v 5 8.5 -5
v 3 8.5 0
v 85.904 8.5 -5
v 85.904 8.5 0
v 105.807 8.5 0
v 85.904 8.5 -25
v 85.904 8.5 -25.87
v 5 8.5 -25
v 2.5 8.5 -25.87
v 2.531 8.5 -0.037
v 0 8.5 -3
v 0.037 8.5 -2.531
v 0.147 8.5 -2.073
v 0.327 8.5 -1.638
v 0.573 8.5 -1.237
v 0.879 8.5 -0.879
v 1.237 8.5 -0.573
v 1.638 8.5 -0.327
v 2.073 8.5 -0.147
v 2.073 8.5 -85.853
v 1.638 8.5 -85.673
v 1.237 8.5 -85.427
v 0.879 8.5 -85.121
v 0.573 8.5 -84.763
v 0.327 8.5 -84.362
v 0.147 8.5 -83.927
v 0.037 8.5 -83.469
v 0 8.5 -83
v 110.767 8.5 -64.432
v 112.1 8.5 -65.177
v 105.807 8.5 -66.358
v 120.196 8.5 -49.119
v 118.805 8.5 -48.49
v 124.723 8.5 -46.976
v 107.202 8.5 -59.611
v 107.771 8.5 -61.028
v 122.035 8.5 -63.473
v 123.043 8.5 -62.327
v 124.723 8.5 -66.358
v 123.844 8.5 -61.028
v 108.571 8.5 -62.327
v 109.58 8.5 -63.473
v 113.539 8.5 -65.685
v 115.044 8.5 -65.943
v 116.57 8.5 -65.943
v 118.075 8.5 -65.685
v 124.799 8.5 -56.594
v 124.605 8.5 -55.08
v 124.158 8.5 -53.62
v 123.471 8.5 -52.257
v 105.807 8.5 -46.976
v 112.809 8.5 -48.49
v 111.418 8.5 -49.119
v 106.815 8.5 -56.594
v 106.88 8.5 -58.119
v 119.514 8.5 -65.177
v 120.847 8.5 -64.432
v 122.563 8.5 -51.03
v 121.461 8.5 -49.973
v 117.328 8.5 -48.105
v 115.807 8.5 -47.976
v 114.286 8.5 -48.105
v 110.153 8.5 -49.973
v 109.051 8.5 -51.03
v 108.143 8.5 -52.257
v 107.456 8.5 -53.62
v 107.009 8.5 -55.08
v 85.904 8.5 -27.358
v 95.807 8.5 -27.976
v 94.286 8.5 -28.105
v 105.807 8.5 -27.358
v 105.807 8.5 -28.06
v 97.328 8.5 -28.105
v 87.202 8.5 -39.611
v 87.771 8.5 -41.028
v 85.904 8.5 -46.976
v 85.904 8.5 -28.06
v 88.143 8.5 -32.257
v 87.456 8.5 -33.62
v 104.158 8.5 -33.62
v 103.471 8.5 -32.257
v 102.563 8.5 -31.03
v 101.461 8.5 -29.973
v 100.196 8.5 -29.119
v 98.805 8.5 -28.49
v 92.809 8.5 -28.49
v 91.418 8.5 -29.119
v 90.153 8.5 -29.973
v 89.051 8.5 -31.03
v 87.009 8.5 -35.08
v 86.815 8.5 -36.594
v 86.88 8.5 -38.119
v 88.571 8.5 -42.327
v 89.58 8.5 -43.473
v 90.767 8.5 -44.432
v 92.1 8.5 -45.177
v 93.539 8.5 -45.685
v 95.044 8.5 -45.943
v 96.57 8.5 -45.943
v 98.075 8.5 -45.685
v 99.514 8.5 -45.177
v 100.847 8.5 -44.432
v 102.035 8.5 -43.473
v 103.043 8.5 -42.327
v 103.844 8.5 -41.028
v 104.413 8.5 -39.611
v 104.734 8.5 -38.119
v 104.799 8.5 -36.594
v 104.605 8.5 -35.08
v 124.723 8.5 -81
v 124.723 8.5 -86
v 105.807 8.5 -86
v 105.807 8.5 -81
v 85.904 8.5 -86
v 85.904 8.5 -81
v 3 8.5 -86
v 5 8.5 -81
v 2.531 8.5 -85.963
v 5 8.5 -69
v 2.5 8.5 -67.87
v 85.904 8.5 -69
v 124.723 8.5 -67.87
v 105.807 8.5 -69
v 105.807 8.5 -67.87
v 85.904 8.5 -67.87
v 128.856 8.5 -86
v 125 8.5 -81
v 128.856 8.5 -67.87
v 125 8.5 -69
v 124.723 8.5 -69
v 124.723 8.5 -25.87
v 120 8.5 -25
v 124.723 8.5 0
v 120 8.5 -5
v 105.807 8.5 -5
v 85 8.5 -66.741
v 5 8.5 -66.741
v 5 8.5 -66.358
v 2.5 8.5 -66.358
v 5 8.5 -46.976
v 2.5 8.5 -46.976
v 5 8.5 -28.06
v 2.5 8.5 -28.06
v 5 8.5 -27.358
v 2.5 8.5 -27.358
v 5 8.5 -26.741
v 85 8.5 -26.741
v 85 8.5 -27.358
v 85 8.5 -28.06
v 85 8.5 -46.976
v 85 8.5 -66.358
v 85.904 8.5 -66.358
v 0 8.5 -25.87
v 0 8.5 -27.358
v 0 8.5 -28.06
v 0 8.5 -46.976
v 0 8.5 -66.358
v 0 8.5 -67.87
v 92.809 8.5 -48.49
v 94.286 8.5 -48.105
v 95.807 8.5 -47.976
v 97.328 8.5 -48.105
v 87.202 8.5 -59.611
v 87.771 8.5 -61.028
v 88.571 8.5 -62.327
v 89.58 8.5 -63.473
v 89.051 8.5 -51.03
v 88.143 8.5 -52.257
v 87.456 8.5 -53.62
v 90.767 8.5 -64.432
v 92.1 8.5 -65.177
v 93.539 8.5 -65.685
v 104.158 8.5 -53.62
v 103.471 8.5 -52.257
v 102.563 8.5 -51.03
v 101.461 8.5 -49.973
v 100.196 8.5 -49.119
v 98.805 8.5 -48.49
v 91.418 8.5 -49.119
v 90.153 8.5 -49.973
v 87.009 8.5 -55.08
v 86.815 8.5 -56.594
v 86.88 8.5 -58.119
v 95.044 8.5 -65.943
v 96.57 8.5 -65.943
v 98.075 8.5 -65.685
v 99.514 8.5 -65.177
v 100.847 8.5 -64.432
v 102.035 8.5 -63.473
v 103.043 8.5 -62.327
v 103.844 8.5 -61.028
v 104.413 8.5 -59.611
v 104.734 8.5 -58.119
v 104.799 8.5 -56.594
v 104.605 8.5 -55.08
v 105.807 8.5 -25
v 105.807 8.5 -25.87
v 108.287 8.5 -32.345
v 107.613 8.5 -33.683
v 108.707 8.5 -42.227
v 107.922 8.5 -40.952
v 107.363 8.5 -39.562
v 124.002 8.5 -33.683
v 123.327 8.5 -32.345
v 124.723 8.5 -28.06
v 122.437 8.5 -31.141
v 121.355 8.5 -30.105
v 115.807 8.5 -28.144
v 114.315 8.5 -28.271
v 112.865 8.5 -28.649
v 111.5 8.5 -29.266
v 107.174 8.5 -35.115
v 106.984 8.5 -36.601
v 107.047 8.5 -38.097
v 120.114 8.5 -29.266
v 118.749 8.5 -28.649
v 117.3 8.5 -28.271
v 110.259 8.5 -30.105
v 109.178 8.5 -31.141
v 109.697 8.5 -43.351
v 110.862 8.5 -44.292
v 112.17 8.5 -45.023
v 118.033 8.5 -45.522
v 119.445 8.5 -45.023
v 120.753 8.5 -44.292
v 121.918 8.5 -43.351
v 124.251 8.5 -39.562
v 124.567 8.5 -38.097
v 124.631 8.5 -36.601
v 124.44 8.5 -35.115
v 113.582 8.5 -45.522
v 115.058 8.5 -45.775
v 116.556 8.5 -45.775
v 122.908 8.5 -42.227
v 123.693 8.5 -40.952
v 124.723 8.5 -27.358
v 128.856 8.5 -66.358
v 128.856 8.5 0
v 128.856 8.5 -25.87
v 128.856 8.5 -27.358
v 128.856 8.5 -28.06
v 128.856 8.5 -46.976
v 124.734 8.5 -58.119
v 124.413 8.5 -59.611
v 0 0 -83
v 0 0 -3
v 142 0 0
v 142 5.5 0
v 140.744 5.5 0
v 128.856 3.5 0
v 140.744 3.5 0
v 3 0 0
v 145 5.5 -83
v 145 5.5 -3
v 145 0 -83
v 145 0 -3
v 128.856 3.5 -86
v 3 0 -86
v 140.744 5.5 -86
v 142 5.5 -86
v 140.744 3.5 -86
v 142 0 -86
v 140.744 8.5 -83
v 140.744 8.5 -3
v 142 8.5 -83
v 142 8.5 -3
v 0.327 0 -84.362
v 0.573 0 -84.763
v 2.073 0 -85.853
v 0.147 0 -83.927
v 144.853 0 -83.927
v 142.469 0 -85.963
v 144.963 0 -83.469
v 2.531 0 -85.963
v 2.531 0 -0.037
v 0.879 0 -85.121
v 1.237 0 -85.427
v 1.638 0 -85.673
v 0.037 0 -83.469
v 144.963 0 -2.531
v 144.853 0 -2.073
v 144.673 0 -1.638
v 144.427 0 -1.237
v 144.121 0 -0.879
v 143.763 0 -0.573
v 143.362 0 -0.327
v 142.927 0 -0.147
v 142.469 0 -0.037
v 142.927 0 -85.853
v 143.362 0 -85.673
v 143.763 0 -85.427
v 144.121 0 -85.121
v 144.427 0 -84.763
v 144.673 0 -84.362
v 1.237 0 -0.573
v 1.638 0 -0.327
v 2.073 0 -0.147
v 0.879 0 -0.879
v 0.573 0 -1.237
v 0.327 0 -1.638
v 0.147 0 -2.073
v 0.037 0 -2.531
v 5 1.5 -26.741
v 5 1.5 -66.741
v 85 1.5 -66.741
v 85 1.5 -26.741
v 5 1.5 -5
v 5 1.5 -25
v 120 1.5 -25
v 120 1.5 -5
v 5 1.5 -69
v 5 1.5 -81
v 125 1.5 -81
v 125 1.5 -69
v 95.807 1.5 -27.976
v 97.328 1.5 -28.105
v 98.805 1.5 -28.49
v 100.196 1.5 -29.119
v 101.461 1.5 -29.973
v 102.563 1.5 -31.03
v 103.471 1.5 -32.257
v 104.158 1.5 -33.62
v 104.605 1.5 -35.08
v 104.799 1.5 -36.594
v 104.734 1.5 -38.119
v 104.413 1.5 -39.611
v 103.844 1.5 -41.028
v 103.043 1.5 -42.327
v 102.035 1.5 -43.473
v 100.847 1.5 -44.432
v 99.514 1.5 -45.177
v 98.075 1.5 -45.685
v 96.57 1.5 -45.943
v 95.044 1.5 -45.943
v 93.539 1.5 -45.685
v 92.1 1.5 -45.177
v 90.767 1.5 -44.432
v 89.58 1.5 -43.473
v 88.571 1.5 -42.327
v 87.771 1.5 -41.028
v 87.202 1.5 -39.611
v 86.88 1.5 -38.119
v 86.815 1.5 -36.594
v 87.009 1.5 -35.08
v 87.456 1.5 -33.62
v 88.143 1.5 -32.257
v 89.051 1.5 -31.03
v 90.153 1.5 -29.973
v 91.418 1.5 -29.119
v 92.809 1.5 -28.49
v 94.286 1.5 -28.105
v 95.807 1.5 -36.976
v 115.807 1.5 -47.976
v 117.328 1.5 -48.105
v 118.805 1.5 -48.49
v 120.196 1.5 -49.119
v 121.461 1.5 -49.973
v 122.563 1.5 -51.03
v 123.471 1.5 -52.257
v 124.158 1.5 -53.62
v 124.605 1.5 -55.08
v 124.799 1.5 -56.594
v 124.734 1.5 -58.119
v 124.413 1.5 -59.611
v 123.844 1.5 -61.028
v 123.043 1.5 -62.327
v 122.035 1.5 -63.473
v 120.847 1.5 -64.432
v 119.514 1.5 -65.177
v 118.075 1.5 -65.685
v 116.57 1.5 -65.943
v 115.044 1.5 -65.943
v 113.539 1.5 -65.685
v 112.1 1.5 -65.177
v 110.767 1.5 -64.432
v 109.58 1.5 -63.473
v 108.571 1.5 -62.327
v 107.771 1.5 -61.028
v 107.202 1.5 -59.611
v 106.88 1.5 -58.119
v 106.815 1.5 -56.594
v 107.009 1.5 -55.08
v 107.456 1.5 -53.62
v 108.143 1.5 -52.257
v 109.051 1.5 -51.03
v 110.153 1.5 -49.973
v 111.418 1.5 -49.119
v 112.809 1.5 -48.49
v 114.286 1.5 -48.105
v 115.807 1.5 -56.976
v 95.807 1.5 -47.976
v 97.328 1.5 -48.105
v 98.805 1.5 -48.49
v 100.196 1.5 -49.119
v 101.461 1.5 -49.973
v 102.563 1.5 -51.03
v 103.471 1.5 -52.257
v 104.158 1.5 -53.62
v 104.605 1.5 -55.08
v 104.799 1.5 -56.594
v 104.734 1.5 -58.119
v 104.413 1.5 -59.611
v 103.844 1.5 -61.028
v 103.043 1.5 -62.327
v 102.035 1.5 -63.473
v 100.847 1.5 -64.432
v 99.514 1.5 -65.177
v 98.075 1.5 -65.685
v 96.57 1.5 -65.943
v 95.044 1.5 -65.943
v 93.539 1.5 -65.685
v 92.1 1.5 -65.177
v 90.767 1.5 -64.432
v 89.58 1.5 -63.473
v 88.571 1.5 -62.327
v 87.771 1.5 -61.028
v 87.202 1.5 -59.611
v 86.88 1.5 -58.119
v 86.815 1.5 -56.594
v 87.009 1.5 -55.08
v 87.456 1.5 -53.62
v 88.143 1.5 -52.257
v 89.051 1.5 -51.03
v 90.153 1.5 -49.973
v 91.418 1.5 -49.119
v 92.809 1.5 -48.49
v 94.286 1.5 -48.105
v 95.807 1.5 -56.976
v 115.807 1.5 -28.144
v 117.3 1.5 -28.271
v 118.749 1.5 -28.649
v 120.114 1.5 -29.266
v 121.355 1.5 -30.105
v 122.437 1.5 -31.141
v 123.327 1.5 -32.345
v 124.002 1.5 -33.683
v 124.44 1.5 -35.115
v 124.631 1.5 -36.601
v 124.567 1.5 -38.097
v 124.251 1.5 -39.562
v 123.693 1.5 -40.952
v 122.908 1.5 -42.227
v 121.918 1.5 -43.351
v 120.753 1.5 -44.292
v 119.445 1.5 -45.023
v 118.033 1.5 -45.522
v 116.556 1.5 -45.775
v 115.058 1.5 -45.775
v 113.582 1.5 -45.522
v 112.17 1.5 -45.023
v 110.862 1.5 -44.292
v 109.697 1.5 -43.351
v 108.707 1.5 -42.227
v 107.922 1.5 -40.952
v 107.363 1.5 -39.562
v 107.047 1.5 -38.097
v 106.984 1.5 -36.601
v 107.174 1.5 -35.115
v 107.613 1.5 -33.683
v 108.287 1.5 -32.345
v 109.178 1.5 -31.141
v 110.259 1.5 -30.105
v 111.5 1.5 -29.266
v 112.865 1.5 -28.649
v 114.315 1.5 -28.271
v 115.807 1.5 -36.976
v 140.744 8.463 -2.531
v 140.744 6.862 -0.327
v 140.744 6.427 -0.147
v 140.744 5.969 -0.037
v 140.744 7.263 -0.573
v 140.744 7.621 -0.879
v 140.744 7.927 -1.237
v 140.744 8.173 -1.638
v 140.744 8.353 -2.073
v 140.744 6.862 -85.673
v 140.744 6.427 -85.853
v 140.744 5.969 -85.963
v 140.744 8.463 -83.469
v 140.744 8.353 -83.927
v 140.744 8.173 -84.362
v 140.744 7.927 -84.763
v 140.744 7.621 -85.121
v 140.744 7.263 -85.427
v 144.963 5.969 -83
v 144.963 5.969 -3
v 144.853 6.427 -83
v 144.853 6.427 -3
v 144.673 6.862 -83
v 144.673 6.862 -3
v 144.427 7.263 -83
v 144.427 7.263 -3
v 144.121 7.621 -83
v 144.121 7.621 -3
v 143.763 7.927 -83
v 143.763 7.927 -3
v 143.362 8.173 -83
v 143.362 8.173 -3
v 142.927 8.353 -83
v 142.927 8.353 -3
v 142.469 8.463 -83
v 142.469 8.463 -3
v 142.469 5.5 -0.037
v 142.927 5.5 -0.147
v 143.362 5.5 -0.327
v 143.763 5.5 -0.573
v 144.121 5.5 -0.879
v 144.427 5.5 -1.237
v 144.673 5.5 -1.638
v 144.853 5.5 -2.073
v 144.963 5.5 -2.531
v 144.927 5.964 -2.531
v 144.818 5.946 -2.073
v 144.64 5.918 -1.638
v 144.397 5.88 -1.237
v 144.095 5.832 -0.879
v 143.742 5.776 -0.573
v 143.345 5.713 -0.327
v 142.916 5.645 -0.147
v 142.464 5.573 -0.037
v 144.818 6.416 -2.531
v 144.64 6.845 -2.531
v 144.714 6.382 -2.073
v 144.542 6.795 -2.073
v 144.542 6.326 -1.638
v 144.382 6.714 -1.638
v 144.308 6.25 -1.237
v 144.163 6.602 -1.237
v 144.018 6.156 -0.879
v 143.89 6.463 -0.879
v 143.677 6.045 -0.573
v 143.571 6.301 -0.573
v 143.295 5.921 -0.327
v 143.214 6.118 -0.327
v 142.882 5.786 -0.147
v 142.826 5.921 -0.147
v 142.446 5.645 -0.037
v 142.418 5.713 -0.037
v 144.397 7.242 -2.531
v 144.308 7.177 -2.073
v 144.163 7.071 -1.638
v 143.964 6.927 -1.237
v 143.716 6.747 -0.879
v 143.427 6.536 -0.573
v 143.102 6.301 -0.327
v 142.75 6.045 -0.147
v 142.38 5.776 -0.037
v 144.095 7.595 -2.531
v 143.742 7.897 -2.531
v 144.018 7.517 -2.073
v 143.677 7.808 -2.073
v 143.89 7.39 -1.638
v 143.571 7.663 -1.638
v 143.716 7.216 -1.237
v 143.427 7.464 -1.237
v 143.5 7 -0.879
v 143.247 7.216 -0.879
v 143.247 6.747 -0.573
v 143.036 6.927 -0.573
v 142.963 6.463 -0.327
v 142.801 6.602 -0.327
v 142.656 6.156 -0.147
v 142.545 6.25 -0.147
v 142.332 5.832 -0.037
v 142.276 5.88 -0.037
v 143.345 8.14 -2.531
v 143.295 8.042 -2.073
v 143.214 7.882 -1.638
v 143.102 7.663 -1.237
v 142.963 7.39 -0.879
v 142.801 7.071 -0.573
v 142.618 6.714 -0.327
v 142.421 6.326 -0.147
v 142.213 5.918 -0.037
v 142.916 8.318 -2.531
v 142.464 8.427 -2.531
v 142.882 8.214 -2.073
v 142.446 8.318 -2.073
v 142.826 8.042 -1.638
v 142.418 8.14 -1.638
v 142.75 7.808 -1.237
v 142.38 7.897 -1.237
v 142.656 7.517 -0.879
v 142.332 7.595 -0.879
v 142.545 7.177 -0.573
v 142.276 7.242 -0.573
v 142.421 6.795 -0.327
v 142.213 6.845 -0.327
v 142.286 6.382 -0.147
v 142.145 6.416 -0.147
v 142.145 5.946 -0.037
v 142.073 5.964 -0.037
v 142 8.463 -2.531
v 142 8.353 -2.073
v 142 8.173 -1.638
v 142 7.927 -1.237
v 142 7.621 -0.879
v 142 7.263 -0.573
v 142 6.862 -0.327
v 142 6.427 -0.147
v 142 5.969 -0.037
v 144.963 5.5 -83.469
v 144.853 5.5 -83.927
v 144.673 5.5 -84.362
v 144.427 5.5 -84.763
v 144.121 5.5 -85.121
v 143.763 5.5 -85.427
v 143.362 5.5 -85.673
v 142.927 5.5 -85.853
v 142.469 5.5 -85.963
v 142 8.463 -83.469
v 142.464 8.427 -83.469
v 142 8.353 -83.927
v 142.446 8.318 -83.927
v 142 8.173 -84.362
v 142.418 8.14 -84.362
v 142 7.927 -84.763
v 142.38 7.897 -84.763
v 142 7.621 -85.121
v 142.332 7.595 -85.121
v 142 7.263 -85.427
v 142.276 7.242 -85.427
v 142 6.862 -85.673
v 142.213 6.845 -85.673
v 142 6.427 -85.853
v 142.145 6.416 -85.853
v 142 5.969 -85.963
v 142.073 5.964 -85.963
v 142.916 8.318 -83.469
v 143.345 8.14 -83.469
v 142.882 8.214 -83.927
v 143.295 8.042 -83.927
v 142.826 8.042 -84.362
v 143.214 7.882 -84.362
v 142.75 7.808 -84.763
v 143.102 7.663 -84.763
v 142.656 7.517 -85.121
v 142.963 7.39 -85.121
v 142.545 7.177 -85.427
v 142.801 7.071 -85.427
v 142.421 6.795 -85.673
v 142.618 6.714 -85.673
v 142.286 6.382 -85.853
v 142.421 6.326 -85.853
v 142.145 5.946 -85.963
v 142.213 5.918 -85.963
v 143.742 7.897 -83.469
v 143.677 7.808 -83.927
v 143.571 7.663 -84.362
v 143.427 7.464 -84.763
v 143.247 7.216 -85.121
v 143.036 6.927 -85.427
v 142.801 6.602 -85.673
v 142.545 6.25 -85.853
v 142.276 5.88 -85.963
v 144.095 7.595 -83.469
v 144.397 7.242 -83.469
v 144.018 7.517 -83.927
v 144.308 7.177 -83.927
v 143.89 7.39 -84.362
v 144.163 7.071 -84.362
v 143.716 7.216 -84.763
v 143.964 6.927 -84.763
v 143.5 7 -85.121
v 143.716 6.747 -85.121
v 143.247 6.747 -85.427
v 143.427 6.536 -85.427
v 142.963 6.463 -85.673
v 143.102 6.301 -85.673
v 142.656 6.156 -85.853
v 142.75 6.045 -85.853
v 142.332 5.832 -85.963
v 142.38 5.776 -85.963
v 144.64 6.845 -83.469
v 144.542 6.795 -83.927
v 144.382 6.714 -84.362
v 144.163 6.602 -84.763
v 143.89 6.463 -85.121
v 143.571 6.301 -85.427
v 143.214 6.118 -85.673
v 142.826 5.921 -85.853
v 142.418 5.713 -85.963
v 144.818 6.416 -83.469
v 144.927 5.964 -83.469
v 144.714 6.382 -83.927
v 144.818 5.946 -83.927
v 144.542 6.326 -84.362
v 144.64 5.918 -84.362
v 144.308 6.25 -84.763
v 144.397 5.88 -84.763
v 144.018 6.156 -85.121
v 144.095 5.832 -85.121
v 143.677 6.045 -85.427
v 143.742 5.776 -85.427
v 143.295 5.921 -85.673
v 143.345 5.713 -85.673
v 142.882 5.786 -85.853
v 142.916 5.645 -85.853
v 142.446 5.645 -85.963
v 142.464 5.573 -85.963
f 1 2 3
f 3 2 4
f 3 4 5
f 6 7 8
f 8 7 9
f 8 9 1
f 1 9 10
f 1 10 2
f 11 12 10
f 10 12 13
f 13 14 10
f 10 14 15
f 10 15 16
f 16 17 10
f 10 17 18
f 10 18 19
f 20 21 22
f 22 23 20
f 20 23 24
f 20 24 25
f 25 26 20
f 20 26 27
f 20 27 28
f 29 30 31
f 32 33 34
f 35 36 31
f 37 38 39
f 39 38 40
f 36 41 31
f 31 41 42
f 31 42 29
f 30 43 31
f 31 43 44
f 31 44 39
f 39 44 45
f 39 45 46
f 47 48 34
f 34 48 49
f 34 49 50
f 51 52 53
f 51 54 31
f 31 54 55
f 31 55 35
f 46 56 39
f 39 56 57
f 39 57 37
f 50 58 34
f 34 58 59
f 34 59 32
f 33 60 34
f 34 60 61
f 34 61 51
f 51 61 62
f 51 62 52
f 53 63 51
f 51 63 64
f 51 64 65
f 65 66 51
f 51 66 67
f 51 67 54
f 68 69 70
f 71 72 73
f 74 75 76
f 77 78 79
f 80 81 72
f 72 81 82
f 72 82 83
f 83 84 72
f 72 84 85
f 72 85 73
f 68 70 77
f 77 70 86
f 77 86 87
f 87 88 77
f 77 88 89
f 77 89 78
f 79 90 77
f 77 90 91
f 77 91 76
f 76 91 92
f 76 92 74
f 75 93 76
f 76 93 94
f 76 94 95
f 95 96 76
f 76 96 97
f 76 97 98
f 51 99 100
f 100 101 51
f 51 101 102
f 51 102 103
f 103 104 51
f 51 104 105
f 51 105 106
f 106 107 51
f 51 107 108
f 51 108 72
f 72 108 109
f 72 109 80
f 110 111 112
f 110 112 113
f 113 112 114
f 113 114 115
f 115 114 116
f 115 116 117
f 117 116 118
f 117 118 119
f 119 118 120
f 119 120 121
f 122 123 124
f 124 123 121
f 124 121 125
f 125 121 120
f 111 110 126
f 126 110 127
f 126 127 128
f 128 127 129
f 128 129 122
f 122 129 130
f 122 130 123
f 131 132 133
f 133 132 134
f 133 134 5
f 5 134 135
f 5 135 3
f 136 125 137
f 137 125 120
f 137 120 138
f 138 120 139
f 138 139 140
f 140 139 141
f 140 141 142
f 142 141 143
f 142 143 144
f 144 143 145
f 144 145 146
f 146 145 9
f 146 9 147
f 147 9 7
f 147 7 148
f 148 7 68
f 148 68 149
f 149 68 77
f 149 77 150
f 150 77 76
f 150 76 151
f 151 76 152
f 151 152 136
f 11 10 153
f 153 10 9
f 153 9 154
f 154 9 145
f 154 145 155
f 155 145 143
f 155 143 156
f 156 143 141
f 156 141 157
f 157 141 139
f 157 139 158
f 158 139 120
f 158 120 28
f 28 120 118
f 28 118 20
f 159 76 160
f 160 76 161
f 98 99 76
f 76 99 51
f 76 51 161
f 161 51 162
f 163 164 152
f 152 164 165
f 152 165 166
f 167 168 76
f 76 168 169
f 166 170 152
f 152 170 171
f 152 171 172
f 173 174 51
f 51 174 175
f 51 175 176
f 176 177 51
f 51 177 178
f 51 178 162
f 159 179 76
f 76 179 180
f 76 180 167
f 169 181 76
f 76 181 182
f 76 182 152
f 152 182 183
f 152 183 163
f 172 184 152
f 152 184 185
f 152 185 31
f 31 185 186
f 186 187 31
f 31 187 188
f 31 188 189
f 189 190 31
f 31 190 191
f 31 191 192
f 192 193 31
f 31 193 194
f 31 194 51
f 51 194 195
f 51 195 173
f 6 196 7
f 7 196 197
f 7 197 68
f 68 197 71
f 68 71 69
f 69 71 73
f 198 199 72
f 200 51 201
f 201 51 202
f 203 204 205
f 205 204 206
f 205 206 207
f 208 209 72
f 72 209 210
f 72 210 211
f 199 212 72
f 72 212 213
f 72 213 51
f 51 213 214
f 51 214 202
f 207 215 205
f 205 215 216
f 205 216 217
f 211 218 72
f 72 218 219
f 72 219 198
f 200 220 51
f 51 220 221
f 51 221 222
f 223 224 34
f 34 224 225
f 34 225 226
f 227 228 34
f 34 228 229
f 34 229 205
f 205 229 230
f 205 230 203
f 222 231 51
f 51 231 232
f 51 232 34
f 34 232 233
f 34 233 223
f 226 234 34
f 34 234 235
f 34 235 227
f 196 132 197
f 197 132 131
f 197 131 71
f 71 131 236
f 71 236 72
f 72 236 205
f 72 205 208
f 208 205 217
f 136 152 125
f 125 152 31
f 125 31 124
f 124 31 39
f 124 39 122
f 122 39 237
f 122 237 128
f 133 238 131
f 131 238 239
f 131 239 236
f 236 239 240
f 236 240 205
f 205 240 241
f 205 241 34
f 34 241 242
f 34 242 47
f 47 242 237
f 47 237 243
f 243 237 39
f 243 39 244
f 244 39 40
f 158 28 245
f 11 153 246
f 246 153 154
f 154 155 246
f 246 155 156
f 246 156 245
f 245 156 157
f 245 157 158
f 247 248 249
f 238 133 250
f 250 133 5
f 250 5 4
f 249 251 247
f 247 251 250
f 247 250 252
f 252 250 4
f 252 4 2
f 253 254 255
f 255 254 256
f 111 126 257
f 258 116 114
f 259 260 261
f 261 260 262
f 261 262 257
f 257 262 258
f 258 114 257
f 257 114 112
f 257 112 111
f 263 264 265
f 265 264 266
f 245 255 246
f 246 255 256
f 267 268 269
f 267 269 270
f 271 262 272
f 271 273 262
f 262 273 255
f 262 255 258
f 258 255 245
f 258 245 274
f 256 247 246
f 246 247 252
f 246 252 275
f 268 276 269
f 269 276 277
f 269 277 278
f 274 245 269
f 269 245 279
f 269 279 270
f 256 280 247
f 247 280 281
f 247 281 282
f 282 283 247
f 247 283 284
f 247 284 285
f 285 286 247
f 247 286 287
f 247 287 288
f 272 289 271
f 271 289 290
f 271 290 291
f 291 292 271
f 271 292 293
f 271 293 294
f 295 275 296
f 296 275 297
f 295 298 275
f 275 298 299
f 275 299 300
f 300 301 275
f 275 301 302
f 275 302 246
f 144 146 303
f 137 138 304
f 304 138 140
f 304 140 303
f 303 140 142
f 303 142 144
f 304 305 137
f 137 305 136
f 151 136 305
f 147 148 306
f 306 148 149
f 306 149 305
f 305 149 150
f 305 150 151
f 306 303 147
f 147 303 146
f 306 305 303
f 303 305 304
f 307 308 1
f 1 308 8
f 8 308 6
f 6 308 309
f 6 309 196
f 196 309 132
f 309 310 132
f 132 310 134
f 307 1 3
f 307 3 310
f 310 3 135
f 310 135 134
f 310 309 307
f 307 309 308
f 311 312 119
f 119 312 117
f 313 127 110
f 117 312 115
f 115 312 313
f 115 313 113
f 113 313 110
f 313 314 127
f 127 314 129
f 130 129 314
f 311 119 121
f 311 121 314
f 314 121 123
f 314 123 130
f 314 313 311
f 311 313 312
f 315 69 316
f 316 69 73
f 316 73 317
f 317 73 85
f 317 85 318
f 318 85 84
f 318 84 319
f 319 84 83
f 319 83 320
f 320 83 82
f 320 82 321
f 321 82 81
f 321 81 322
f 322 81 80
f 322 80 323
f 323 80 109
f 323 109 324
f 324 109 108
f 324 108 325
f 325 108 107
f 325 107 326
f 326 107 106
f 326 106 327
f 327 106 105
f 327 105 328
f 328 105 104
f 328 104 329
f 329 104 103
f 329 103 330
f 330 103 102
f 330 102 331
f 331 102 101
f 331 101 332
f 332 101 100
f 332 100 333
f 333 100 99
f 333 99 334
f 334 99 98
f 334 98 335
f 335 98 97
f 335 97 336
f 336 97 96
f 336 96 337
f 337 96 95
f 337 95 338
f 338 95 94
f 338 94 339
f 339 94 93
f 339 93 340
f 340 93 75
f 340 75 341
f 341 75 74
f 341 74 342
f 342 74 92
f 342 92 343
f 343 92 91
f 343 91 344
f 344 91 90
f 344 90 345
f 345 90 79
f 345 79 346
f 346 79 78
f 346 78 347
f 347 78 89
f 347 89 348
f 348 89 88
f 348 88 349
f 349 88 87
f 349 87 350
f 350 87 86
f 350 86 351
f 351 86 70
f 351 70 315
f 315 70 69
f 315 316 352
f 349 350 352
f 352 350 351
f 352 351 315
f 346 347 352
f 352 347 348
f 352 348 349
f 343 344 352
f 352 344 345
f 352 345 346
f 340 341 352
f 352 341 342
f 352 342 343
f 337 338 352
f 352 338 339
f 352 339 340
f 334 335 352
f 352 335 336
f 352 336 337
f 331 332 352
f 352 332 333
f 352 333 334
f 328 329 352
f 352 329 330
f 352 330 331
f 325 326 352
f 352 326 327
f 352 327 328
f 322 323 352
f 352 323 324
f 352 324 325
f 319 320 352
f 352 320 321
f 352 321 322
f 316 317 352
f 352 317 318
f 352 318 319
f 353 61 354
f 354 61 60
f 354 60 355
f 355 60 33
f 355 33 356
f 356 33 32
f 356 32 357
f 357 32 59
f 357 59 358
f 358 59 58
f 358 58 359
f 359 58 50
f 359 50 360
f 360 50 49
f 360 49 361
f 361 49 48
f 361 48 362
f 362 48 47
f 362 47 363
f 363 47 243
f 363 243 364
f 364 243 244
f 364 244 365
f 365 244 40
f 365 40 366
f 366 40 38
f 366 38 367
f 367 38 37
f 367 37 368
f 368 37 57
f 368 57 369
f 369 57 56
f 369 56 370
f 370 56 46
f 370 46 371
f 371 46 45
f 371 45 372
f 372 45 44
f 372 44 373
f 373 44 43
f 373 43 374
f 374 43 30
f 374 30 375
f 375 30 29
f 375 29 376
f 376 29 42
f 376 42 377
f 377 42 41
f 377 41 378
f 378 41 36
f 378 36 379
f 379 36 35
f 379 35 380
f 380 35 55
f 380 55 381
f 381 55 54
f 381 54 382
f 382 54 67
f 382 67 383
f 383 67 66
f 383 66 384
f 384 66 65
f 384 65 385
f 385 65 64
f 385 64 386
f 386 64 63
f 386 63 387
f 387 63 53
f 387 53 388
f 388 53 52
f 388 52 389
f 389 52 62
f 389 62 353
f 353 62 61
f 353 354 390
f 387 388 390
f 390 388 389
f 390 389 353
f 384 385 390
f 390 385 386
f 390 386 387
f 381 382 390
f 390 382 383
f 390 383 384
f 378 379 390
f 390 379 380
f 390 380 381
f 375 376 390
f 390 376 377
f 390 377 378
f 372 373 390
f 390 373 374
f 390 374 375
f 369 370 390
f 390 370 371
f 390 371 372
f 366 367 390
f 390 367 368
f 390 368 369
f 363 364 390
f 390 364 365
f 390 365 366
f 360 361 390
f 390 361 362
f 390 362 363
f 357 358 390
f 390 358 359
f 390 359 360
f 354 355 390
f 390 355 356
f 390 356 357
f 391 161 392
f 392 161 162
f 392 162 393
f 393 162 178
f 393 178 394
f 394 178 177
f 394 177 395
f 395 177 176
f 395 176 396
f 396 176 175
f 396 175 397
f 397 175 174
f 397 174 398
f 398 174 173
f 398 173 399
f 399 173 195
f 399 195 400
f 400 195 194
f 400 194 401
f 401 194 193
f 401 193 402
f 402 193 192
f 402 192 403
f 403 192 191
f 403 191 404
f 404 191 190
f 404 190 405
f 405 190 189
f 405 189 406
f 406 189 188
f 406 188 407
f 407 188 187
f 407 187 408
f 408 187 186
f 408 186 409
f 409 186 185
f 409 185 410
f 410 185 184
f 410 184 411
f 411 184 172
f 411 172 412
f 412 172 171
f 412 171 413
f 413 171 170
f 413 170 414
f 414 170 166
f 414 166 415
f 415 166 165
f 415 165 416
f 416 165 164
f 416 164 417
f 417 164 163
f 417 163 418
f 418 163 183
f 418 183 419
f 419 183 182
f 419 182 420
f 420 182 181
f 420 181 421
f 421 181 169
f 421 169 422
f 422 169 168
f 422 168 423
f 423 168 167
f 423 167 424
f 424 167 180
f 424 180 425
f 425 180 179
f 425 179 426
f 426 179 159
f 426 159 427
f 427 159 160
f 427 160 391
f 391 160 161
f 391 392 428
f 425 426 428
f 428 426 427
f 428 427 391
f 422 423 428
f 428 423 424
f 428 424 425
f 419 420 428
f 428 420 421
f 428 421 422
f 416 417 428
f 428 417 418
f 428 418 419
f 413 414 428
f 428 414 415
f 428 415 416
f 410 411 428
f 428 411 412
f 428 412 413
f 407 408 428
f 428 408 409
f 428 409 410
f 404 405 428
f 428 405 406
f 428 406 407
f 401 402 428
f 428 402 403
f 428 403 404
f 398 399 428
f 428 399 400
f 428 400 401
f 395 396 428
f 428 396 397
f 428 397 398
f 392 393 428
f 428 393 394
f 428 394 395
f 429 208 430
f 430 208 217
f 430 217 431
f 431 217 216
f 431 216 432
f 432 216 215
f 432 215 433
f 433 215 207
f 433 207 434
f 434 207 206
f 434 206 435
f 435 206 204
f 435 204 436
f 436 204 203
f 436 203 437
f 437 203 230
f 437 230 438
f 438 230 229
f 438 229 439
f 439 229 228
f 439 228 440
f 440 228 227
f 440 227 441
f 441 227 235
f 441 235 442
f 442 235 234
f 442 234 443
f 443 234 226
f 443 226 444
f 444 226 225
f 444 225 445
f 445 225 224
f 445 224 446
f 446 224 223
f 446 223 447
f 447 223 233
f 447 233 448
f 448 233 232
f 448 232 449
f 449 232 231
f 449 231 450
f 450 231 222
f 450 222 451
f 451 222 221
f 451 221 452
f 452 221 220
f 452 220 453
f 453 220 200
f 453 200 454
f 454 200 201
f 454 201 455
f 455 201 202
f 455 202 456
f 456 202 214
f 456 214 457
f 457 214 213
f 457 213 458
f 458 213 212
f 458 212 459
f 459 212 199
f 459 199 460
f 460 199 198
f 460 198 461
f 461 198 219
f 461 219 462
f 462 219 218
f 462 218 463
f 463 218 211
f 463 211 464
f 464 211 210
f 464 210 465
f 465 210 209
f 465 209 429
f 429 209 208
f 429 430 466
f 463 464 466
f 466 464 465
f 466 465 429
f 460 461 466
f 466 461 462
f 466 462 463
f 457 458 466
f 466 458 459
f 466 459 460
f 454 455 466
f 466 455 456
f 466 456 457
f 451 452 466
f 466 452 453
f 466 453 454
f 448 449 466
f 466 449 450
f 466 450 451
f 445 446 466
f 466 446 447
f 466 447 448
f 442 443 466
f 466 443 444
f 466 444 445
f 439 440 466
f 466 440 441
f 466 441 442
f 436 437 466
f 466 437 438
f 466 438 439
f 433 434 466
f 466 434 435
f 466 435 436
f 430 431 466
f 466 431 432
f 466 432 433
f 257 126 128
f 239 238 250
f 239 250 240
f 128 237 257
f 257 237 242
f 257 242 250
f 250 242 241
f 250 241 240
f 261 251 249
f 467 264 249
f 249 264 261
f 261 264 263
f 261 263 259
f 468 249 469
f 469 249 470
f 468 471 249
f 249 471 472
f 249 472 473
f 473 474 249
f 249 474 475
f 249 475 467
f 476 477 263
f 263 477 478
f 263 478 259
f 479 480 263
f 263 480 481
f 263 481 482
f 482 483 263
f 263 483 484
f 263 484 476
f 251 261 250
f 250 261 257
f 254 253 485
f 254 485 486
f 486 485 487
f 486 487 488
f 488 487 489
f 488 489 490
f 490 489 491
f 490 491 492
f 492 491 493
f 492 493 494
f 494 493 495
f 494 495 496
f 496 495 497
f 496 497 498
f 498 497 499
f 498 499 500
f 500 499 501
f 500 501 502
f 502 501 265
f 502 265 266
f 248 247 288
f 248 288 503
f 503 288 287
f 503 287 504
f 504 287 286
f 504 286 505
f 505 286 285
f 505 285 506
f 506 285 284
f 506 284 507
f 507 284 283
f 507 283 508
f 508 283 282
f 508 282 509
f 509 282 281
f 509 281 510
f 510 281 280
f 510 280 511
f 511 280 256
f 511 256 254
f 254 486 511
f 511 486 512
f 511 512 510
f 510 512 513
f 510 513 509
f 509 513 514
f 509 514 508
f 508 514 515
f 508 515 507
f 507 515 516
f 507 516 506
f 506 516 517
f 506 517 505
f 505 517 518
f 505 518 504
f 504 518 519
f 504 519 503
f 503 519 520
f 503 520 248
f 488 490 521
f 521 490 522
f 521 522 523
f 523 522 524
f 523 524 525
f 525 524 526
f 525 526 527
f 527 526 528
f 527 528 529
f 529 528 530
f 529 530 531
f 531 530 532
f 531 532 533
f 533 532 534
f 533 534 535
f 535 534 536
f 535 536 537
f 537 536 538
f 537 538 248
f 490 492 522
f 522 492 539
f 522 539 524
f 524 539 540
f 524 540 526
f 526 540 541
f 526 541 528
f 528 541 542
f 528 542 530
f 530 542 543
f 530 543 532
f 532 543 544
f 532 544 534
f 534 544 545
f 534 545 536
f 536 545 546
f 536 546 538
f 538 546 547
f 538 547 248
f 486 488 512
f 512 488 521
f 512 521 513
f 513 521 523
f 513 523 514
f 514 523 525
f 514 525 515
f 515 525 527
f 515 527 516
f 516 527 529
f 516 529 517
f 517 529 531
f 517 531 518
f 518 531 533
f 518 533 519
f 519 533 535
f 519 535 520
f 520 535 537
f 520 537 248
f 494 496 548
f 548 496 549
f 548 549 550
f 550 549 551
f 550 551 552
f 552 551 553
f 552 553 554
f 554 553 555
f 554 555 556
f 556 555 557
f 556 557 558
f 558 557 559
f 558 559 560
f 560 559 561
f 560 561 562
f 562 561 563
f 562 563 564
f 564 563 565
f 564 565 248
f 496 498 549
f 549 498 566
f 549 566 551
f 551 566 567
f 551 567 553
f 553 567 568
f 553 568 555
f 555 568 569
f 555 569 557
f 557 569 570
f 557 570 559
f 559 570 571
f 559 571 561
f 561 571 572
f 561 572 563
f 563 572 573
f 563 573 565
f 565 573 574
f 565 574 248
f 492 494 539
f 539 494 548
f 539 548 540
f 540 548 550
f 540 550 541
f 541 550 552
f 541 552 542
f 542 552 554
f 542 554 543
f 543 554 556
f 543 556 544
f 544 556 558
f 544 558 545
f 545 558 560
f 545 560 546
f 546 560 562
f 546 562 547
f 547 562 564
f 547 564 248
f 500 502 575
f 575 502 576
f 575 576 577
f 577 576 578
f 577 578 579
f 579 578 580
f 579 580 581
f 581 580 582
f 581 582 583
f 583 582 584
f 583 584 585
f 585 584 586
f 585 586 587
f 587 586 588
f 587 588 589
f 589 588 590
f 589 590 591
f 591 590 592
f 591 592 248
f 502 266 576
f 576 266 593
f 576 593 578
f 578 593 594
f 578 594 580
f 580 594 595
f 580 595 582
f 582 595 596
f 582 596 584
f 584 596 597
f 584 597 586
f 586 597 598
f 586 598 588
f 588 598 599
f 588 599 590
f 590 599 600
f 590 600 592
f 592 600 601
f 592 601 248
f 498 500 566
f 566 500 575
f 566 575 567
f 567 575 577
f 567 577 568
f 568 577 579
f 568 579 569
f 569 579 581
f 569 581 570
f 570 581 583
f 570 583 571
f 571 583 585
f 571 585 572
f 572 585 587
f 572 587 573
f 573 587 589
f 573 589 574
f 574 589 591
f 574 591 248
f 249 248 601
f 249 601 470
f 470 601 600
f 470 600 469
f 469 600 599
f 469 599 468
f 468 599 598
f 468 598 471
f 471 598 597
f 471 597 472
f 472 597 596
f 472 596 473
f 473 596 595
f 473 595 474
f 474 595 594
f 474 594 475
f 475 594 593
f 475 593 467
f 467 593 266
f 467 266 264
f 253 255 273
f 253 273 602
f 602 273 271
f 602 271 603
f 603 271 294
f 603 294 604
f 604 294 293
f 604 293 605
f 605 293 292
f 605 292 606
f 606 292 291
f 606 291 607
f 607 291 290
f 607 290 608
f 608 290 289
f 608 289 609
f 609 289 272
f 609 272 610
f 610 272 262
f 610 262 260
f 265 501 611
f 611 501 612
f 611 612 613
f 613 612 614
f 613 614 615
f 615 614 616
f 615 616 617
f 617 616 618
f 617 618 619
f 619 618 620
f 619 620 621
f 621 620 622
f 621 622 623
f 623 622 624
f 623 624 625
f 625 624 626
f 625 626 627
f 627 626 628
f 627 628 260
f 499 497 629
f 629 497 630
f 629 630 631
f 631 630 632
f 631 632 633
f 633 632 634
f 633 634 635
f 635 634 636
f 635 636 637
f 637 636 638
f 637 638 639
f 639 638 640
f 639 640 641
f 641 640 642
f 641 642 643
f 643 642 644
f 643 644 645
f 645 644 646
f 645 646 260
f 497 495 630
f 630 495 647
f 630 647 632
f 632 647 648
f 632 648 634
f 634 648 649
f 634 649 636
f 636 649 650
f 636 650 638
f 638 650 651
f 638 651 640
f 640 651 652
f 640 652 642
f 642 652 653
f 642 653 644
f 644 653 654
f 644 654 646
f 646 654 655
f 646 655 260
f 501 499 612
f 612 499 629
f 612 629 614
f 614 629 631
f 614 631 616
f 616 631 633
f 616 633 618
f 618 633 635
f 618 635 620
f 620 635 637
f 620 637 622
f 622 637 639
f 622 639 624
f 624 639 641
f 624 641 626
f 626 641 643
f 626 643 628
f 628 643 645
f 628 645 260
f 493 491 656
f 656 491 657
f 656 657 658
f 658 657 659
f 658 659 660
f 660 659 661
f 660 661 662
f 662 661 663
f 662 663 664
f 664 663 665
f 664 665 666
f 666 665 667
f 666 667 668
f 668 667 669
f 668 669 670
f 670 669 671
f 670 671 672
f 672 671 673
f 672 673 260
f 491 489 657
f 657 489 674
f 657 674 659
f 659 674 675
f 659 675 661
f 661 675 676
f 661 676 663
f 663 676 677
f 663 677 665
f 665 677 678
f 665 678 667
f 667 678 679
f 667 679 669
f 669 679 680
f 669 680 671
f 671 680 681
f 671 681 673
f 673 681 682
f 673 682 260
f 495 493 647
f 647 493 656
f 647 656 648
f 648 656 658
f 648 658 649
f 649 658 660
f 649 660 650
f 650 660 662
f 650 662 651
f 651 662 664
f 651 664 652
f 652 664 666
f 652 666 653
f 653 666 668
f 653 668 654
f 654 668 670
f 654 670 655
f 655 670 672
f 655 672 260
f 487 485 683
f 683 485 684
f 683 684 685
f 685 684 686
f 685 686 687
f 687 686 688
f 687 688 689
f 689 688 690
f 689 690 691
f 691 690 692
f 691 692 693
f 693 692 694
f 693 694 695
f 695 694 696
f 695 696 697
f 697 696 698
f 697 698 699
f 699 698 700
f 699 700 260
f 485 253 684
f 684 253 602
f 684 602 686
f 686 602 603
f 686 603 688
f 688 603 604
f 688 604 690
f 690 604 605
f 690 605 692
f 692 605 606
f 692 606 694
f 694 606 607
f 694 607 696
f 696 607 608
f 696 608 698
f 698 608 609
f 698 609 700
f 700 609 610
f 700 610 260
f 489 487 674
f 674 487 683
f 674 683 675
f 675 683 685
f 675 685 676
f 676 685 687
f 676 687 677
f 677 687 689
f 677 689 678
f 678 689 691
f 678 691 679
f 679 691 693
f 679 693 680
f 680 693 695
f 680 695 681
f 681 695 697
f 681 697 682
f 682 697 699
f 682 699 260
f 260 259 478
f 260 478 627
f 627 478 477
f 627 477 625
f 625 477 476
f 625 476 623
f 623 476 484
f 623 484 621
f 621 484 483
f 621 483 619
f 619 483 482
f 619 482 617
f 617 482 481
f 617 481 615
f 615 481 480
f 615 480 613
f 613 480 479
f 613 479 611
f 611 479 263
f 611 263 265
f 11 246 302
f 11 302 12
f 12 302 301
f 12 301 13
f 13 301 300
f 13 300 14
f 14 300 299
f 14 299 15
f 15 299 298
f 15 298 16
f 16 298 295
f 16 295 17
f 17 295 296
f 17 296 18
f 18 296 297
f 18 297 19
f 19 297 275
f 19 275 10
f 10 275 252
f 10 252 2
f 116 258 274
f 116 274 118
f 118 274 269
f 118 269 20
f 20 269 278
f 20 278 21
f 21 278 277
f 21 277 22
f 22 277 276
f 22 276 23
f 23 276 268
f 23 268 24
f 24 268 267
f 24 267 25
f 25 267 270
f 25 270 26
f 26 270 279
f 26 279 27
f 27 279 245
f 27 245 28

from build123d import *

# Parameters (mm, degrees)
SKETCH_1_W            = 145
SKETCH_1_H            = 86
EXTRUDE_305_DEPTH     = 8.5
SKETCH_4_W            = 80
SKETCH_4_H            = 40
CUT_EXTRUDE_1_DEPTH   = 7
SKETCH_6_W            = 115
SKETCH_6_H            = 20
CUT_EXTRUDE_793_DEPTH = 7
SKETCH_8_W            = 120
SKETCH_8_H            = 12
CUT_EXTRUDE_5_DEPTH   = 7
SKETCH_14_R           = 9
SKETCH_14_R_2         = 8.831298305
CUT_EXTRUDE_11_DEPTH  = 7
SKETCH_15_W           = 11.88767394
SKETCH_15_H           = 86
CUT_EXTRUDE_12_DEPTH  = 5
FILLET_1_R            = 3
FILLET_2_R            = 3
FILLET_3_R            = 3
FILLET_4_R            = 3
FILLET_5_R            = 3


with BuildPart() as part:
    # Эскиз1 → Extrude 305 (new body)
    with BuildSketch(Plane(origin=(0, 0, 0), x_dir=(1, 0, 0), z_dir=(0, 1, 0))):
        with Locations((72.5, 43)):
            Rectangle(SKETCH_1_W, SKETCH_1_H)
    extrude(amount=EXTRUDE_305_DEPTH)

    # Эскиз4 → Вырез-Вытянуть1 (cut)
    with BuildSketch(Plane(origin=(0, 8.5, 0), x_dir=(1, 0, 0), z_dir=(0, 1, 0))):
        with Locations((45, 46.740912533)):
            Rectangle(SKETCH_4_W, SKETCH_4_H)
    extrude(amount=-CUT_EXTRUDE_1_DEPTH, mode=Mode.SUBTRACT)

    # Эскиз6 → Cut-Extrude 793 (cut)
    with BuildSketch(Plane(origin=(0, 8.5, 0), x_dir=(1, 0, 0), z_dir=(0, 1, 0))):
        with Locations((62.5, 15)):
            Rectangle(SKETCH_6_W, SKETCH_6_H)
    extrude(amount=-CUT_EXTRUDE_793_DEPTH, mode=Mode.SUBTRACT)

    # Эскиз8 → Вырез-Вытянуть5 (cut)
    with BuildSketch(Plane(origin=(0, 8.5, 0), x_dir=(1, 0, 0), z_dir=(0, 1, 0))):
        with Locations((65, 75)):
            Rectangle(SKETCH_8_W, SKETCH_8_H)
    extrude(amount=-CUT_EXTRUDE_5_DEPTH, mode=Mode.SUBTRACT)

    # Эскиз14 → Вырез-Вытянуть11 (cut)
    with BuildSketch(Plane(origin=(0, 8.5, 0), x_dir=(1, 0, 0), z_dir=(0, 1, 0))):
        with Locations((95.807220746, 36.975666029)):
            Circle(SKETCH_14_R)
        with Locations((115.807220746, 36.975666029)):
            Circle(SKETCH_14_R_2)
        with Locations((95.807220746, 56.975666029)):
            Circle(SKETCH_14_R)
        with Locations((115.807220746, 56.975666029)):
            Circle(SKETCH_14_R)
    extrude(amount=-CUT_EXTRUDE_11_DEPTH, mode=Mode.SUBTRACT)

    # Эскиз15 → Вырез-Вытянуть12 (cut)
    with BuildSketch(Plane(origin=(0, 8.5, 0), x_dir=(1, 0, 0), z_dir=(0, 1, 0))):
        with Locations((134.800217128, 43)):
            Rectangle(SKETCH_15_W, SKETCH_15_H)
    extrude(amount=-CUT_EXTRUDE_12_DEPTH, mode=Mode.SUBTRACT)

    # Скругление1
    fillet_1_edges = [part.edges().sort_by_distance(p)[0] for p in [
        (145, 8.5, -43),
    ]]
    fillet(fillet_1_edges, radius=FILLET_1_R)

    # Скругление2
    fillet_2_edges = [part.edges().sort_by_distance(p)[0] for p in [
        (145, 2.75, 0),
        (144.121320344, 7.621320344, 0),
        (141.372027049, 8.5, 0),
    ]]
    fillet(fillet_2_edges, radius=FILLET_2_R)

    # Скругление3
    fillet_3_edges = [part.edges().sort_by_distance(p)[0] for p in [
        (141.372027049, 8.5, -86),
        (145, 2.75, -86),
        (144.121320344, 7.621320344, -86),
    ]]
    fillet(fillet_3_edges, radius=FILLET_3_R)

    # Скругление4
    fillet_4_edges = [part.edges().sort_by_distance(p)[0] for p in [
        (0, 4.25, 0),
    ]]
    fillet(fillet_4_edges, radius=FILLET_4_R)

    # Скругление5
    fillet_5_edges = [part.edges().sort_by_distance(p)[0] for p in [
        (0, 4.25, -86),
    ]]
    fillet(fillet_5_edges, radius=FILLET_5_R)


solid = part.part
